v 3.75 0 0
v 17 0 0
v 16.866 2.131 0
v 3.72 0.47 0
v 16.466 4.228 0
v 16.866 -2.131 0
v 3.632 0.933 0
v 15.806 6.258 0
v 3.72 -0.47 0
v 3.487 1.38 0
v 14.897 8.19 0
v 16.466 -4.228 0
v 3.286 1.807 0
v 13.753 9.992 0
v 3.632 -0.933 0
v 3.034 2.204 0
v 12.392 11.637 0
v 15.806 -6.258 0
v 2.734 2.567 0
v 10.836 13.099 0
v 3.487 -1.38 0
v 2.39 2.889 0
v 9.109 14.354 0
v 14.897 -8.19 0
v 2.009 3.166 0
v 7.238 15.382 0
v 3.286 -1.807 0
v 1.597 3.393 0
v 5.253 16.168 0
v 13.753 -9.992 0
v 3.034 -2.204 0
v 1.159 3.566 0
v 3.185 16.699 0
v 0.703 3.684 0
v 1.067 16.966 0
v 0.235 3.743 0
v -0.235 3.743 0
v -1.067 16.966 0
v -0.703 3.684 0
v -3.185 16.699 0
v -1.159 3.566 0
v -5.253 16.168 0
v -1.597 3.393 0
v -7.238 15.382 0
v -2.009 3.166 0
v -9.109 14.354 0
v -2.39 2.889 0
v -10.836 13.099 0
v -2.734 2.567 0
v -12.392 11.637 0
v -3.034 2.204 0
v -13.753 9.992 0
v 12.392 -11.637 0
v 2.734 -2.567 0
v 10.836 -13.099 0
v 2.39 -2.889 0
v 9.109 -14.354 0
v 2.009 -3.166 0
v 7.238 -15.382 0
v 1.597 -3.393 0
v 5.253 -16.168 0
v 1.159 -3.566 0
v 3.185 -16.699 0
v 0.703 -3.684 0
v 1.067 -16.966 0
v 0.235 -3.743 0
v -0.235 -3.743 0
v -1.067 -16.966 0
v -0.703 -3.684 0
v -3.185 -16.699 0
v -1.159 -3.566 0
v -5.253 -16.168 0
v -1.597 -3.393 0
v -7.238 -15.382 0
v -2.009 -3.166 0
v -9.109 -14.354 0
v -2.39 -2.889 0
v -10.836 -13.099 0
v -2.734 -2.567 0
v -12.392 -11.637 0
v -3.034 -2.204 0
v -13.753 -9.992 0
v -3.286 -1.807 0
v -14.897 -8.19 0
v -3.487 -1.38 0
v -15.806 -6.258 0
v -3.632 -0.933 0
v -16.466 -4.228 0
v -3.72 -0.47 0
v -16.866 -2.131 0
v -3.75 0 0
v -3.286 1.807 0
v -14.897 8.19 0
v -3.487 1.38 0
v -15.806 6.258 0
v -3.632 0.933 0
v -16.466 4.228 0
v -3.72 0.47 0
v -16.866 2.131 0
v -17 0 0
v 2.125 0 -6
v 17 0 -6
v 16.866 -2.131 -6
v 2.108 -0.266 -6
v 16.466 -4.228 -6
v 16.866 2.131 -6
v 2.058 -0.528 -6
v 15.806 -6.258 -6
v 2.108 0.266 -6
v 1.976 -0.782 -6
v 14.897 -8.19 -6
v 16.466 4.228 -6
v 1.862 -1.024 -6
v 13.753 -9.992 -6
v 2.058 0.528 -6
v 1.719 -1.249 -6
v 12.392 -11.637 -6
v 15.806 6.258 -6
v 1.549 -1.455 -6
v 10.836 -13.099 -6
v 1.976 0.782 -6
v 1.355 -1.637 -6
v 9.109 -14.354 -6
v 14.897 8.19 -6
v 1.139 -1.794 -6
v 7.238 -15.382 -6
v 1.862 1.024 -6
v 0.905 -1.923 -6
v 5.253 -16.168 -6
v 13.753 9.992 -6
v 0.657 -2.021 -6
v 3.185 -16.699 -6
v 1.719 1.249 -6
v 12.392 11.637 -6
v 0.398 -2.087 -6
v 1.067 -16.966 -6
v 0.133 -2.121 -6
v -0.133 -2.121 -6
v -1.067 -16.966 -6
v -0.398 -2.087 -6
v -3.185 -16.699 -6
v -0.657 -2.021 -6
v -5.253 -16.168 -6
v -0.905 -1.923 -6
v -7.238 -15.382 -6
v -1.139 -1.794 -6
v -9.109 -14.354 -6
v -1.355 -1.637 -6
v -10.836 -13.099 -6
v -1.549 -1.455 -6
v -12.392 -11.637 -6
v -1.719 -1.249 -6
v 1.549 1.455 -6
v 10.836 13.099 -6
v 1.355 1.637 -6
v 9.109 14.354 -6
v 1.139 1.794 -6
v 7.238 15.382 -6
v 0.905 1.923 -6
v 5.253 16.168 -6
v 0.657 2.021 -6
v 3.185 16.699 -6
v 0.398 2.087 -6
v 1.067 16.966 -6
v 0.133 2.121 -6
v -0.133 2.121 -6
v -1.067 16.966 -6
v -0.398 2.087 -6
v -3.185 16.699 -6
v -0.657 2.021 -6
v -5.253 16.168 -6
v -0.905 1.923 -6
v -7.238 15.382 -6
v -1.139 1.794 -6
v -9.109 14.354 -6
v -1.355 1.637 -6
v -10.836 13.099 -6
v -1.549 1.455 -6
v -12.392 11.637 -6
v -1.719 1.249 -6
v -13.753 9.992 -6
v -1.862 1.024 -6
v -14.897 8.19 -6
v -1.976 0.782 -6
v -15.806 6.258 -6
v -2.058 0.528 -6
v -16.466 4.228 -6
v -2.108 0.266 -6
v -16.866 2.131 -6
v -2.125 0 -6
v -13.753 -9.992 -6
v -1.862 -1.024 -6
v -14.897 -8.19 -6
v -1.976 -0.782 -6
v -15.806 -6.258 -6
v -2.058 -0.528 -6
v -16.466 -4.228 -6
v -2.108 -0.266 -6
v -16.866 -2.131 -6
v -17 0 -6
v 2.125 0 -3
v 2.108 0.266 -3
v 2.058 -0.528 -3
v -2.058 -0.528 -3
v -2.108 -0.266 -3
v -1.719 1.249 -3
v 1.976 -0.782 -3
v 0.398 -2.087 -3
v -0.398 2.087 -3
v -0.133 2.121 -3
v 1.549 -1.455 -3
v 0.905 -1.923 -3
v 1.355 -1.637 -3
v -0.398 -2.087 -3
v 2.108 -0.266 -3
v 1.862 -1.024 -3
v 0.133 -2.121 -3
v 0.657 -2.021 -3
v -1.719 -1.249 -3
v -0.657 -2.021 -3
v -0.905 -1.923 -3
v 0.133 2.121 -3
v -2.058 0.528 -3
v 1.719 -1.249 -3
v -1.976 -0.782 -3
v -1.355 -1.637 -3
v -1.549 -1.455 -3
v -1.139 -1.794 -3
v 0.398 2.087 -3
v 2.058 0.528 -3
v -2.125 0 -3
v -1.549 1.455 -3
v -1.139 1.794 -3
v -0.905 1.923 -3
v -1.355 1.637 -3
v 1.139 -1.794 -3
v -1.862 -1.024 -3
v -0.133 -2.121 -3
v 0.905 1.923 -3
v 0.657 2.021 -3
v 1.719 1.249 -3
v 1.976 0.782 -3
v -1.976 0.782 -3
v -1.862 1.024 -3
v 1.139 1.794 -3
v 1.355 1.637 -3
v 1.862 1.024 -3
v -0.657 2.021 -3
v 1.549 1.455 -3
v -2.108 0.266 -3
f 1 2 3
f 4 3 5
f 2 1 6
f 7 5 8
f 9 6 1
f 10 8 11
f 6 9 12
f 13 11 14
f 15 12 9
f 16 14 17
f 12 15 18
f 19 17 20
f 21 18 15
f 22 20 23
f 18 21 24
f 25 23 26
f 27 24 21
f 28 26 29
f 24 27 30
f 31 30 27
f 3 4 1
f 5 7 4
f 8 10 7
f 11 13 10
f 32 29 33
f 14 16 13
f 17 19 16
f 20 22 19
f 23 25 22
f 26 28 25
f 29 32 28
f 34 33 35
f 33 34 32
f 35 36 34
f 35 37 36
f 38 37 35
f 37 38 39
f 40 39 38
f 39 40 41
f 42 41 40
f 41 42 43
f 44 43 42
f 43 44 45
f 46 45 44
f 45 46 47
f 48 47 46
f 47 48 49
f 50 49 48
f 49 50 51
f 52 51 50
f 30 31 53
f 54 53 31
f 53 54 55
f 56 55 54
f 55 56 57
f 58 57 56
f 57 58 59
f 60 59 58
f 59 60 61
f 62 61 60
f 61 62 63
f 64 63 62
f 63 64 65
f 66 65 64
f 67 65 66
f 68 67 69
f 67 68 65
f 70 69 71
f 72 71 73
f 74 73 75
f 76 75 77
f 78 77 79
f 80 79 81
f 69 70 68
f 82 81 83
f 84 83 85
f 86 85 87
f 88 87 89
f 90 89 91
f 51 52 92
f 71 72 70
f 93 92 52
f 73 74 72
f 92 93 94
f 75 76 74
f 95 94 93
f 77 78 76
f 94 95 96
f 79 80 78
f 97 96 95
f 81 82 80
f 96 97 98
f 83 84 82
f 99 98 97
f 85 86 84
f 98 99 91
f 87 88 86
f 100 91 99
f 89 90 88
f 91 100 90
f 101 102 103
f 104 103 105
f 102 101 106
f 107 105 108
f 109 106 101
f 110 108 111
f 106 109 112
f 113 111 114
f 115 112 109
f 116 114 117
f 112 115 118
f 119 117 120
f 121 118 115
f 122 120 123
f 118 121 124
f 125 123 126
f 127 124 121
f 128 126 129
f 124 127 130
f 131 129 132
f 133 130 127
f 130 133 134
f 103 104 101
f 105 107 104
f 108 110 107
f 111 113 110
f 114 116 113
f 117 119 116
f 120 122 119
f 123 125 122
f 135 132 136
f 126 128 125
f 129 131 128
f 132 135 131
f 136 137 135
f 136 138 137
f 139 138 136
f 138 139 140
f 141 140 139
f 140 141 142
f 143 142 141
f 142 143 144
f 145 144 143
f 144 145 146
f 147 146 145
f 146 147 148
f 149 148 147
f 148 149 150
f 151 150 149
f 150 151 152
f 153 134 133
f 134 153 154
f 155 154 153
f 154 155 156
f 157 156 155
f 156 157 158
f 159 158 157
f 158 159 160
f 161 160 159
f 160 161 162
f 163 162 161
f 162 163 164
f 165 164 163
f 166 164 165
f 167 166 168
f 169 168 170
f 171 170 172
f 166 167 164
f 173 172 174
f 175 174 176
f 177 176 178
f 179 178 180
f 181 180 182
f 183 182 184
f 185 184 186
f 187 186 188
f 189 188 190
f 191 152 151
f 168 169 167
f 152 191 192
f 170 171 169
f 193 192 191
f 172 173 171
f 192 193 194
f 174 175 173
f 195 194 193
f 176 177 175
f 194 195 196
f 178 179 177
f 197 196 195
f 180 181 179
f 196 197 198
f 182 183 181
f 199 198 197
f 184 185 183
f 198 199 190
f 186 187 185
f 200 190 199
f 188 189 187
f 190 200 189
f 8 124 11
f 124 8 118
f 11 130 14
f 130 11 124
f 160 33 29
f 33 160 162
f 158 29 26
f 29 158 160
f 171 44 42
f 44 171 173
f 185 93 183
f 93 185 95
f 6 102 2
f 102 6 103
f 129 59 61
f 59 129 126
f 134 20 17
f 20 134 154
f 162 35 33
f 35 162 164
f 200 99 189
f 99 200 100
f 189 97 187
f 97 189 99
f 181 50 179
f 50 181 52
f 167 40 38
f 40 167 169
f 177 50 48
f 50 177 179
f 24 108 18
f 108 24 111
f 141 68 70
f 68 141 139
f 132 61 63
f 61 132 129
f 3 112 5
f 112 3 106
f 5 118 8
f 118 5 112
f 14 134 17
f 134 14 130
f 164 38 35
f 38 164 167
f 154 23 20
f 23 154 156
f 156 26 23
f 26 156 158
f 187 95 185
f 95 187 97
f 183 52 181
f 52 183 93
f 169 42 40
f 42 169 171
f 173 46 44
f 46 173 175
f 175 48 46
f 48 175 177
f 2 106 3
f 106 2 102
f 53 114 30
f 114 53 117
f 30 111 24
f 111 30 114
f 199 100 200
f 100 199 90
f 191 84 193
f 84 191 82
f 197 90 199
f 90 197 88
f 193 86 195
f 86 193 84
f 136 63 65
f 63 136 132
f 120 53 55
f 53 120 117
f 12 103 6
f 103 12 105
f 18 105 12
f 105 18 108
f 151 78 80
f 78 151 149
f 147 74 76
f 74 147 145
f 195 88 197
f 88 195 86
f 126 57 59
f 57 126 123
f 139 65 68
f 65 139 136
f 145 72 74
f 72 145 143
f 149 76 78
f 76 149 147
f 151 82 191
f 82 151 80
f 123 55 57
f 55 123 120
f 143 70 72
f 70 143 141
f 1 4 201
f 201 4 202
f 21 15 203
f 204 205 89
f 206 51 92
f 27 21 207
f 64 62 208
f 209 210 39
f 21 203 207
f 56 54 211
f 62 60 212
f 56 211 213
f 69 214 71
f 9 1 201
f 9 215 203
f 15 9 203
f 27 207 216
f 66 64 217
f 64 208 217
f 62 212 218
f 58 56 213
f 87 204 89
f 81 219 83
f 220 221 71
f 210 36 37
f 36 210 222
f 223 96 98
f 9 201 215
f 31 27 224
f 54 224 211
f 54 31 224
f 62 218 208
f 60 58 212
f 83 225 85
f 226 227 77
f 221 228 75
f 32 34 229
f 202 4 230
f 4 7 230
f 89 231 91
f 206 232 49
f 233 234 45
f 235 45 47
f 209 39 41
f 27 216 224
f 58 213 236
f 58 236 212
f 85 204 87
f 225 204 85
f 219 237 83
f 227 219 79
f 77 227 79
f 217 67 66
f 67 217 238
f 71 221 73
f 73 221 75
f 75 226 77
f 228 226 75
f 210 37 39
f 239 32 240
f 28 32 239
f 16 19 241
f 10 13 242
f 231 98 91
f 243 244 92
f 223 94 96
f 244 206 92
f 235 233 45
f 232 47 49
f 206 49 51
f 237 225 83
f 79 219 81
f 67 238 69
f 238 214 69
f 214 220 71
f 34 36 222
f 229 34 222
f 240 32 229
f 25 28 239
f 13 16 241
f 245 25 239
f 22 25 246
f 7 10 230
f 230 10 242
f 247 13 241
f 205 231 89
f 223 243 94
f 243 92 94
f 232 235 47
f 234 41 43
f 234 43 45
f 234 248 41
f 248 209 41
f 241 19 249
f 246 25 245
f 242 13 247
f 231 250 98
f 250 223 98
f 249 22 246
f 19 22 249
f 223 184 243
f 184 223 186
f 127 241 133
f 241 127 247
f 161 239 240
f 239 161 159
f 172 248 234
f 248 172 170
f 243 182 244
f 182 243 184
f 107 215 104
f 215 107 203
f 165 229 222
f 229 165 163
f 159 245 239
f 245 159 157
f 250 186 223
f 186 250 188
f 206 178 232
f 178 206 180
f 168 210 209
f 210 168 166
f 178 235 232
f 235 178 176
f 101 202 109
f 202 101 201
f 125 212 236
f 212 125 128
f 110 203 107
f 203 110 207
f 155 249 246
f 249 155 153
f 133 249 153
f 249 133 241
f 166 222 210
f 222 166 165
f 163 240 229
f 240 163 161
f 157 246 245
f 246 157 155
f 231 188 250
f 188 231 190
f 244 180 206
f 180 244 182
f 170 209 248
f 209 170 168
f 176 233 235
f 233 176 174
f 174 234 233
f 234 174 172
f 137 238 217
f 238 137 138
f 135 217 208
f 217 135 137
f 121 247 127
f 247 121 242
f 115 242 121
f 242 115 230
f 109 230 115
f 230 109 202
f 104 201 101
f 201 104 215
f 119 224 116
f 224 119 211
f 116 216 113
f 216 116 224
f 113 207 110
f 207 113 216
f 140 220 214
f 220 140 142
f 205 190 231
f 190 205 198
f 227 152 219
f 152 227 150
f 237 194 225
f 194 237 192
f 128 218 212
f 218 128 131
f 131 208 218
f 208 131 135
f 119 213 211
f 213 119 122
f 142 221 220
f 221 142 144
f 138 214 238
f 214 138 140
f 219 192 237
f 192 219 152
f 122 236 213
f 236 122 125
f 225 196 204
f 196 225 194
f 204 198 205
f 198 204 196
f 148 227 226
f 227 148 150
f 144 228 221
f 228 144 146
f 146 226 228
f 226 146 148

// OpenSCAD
$fn = 50;


difference() {
	union() {
		translate(v = [0, 0, -6.0000000000]) {
			cylinder(h = 6, r = 7.0000000000);
		}
		translate(v = [0, 0, -6.0000000000]) {
			cylinder(h = 6, r = 17.0000000000);
		}
	}
	union() {
		translate(v = [0, 0, 0]) {
			rotate(a = [0, 0, 0]) {
				difference() {
					union() {
						#translate(v = [0, 0, -6.0000000000]) {
							cylinder(h = 6, r = 2.0000000000);
						}
						#translate(v = [0, 0, -3]) {
							cylinder(h = 3, r1 = 2.1250000000, r2 = 3.7500000000);
						}
						#translate(v = [0, 0, -6.0000000000]) {
							cylinder(h = 6, r = 2.1250000000);
						}
						#translate(v = [0, 0, -6.0000000000]) {
							cylinder(h = 6, r = 2.0000000000);
						}
					}
					union();
				}
			}
		}
	}
}
